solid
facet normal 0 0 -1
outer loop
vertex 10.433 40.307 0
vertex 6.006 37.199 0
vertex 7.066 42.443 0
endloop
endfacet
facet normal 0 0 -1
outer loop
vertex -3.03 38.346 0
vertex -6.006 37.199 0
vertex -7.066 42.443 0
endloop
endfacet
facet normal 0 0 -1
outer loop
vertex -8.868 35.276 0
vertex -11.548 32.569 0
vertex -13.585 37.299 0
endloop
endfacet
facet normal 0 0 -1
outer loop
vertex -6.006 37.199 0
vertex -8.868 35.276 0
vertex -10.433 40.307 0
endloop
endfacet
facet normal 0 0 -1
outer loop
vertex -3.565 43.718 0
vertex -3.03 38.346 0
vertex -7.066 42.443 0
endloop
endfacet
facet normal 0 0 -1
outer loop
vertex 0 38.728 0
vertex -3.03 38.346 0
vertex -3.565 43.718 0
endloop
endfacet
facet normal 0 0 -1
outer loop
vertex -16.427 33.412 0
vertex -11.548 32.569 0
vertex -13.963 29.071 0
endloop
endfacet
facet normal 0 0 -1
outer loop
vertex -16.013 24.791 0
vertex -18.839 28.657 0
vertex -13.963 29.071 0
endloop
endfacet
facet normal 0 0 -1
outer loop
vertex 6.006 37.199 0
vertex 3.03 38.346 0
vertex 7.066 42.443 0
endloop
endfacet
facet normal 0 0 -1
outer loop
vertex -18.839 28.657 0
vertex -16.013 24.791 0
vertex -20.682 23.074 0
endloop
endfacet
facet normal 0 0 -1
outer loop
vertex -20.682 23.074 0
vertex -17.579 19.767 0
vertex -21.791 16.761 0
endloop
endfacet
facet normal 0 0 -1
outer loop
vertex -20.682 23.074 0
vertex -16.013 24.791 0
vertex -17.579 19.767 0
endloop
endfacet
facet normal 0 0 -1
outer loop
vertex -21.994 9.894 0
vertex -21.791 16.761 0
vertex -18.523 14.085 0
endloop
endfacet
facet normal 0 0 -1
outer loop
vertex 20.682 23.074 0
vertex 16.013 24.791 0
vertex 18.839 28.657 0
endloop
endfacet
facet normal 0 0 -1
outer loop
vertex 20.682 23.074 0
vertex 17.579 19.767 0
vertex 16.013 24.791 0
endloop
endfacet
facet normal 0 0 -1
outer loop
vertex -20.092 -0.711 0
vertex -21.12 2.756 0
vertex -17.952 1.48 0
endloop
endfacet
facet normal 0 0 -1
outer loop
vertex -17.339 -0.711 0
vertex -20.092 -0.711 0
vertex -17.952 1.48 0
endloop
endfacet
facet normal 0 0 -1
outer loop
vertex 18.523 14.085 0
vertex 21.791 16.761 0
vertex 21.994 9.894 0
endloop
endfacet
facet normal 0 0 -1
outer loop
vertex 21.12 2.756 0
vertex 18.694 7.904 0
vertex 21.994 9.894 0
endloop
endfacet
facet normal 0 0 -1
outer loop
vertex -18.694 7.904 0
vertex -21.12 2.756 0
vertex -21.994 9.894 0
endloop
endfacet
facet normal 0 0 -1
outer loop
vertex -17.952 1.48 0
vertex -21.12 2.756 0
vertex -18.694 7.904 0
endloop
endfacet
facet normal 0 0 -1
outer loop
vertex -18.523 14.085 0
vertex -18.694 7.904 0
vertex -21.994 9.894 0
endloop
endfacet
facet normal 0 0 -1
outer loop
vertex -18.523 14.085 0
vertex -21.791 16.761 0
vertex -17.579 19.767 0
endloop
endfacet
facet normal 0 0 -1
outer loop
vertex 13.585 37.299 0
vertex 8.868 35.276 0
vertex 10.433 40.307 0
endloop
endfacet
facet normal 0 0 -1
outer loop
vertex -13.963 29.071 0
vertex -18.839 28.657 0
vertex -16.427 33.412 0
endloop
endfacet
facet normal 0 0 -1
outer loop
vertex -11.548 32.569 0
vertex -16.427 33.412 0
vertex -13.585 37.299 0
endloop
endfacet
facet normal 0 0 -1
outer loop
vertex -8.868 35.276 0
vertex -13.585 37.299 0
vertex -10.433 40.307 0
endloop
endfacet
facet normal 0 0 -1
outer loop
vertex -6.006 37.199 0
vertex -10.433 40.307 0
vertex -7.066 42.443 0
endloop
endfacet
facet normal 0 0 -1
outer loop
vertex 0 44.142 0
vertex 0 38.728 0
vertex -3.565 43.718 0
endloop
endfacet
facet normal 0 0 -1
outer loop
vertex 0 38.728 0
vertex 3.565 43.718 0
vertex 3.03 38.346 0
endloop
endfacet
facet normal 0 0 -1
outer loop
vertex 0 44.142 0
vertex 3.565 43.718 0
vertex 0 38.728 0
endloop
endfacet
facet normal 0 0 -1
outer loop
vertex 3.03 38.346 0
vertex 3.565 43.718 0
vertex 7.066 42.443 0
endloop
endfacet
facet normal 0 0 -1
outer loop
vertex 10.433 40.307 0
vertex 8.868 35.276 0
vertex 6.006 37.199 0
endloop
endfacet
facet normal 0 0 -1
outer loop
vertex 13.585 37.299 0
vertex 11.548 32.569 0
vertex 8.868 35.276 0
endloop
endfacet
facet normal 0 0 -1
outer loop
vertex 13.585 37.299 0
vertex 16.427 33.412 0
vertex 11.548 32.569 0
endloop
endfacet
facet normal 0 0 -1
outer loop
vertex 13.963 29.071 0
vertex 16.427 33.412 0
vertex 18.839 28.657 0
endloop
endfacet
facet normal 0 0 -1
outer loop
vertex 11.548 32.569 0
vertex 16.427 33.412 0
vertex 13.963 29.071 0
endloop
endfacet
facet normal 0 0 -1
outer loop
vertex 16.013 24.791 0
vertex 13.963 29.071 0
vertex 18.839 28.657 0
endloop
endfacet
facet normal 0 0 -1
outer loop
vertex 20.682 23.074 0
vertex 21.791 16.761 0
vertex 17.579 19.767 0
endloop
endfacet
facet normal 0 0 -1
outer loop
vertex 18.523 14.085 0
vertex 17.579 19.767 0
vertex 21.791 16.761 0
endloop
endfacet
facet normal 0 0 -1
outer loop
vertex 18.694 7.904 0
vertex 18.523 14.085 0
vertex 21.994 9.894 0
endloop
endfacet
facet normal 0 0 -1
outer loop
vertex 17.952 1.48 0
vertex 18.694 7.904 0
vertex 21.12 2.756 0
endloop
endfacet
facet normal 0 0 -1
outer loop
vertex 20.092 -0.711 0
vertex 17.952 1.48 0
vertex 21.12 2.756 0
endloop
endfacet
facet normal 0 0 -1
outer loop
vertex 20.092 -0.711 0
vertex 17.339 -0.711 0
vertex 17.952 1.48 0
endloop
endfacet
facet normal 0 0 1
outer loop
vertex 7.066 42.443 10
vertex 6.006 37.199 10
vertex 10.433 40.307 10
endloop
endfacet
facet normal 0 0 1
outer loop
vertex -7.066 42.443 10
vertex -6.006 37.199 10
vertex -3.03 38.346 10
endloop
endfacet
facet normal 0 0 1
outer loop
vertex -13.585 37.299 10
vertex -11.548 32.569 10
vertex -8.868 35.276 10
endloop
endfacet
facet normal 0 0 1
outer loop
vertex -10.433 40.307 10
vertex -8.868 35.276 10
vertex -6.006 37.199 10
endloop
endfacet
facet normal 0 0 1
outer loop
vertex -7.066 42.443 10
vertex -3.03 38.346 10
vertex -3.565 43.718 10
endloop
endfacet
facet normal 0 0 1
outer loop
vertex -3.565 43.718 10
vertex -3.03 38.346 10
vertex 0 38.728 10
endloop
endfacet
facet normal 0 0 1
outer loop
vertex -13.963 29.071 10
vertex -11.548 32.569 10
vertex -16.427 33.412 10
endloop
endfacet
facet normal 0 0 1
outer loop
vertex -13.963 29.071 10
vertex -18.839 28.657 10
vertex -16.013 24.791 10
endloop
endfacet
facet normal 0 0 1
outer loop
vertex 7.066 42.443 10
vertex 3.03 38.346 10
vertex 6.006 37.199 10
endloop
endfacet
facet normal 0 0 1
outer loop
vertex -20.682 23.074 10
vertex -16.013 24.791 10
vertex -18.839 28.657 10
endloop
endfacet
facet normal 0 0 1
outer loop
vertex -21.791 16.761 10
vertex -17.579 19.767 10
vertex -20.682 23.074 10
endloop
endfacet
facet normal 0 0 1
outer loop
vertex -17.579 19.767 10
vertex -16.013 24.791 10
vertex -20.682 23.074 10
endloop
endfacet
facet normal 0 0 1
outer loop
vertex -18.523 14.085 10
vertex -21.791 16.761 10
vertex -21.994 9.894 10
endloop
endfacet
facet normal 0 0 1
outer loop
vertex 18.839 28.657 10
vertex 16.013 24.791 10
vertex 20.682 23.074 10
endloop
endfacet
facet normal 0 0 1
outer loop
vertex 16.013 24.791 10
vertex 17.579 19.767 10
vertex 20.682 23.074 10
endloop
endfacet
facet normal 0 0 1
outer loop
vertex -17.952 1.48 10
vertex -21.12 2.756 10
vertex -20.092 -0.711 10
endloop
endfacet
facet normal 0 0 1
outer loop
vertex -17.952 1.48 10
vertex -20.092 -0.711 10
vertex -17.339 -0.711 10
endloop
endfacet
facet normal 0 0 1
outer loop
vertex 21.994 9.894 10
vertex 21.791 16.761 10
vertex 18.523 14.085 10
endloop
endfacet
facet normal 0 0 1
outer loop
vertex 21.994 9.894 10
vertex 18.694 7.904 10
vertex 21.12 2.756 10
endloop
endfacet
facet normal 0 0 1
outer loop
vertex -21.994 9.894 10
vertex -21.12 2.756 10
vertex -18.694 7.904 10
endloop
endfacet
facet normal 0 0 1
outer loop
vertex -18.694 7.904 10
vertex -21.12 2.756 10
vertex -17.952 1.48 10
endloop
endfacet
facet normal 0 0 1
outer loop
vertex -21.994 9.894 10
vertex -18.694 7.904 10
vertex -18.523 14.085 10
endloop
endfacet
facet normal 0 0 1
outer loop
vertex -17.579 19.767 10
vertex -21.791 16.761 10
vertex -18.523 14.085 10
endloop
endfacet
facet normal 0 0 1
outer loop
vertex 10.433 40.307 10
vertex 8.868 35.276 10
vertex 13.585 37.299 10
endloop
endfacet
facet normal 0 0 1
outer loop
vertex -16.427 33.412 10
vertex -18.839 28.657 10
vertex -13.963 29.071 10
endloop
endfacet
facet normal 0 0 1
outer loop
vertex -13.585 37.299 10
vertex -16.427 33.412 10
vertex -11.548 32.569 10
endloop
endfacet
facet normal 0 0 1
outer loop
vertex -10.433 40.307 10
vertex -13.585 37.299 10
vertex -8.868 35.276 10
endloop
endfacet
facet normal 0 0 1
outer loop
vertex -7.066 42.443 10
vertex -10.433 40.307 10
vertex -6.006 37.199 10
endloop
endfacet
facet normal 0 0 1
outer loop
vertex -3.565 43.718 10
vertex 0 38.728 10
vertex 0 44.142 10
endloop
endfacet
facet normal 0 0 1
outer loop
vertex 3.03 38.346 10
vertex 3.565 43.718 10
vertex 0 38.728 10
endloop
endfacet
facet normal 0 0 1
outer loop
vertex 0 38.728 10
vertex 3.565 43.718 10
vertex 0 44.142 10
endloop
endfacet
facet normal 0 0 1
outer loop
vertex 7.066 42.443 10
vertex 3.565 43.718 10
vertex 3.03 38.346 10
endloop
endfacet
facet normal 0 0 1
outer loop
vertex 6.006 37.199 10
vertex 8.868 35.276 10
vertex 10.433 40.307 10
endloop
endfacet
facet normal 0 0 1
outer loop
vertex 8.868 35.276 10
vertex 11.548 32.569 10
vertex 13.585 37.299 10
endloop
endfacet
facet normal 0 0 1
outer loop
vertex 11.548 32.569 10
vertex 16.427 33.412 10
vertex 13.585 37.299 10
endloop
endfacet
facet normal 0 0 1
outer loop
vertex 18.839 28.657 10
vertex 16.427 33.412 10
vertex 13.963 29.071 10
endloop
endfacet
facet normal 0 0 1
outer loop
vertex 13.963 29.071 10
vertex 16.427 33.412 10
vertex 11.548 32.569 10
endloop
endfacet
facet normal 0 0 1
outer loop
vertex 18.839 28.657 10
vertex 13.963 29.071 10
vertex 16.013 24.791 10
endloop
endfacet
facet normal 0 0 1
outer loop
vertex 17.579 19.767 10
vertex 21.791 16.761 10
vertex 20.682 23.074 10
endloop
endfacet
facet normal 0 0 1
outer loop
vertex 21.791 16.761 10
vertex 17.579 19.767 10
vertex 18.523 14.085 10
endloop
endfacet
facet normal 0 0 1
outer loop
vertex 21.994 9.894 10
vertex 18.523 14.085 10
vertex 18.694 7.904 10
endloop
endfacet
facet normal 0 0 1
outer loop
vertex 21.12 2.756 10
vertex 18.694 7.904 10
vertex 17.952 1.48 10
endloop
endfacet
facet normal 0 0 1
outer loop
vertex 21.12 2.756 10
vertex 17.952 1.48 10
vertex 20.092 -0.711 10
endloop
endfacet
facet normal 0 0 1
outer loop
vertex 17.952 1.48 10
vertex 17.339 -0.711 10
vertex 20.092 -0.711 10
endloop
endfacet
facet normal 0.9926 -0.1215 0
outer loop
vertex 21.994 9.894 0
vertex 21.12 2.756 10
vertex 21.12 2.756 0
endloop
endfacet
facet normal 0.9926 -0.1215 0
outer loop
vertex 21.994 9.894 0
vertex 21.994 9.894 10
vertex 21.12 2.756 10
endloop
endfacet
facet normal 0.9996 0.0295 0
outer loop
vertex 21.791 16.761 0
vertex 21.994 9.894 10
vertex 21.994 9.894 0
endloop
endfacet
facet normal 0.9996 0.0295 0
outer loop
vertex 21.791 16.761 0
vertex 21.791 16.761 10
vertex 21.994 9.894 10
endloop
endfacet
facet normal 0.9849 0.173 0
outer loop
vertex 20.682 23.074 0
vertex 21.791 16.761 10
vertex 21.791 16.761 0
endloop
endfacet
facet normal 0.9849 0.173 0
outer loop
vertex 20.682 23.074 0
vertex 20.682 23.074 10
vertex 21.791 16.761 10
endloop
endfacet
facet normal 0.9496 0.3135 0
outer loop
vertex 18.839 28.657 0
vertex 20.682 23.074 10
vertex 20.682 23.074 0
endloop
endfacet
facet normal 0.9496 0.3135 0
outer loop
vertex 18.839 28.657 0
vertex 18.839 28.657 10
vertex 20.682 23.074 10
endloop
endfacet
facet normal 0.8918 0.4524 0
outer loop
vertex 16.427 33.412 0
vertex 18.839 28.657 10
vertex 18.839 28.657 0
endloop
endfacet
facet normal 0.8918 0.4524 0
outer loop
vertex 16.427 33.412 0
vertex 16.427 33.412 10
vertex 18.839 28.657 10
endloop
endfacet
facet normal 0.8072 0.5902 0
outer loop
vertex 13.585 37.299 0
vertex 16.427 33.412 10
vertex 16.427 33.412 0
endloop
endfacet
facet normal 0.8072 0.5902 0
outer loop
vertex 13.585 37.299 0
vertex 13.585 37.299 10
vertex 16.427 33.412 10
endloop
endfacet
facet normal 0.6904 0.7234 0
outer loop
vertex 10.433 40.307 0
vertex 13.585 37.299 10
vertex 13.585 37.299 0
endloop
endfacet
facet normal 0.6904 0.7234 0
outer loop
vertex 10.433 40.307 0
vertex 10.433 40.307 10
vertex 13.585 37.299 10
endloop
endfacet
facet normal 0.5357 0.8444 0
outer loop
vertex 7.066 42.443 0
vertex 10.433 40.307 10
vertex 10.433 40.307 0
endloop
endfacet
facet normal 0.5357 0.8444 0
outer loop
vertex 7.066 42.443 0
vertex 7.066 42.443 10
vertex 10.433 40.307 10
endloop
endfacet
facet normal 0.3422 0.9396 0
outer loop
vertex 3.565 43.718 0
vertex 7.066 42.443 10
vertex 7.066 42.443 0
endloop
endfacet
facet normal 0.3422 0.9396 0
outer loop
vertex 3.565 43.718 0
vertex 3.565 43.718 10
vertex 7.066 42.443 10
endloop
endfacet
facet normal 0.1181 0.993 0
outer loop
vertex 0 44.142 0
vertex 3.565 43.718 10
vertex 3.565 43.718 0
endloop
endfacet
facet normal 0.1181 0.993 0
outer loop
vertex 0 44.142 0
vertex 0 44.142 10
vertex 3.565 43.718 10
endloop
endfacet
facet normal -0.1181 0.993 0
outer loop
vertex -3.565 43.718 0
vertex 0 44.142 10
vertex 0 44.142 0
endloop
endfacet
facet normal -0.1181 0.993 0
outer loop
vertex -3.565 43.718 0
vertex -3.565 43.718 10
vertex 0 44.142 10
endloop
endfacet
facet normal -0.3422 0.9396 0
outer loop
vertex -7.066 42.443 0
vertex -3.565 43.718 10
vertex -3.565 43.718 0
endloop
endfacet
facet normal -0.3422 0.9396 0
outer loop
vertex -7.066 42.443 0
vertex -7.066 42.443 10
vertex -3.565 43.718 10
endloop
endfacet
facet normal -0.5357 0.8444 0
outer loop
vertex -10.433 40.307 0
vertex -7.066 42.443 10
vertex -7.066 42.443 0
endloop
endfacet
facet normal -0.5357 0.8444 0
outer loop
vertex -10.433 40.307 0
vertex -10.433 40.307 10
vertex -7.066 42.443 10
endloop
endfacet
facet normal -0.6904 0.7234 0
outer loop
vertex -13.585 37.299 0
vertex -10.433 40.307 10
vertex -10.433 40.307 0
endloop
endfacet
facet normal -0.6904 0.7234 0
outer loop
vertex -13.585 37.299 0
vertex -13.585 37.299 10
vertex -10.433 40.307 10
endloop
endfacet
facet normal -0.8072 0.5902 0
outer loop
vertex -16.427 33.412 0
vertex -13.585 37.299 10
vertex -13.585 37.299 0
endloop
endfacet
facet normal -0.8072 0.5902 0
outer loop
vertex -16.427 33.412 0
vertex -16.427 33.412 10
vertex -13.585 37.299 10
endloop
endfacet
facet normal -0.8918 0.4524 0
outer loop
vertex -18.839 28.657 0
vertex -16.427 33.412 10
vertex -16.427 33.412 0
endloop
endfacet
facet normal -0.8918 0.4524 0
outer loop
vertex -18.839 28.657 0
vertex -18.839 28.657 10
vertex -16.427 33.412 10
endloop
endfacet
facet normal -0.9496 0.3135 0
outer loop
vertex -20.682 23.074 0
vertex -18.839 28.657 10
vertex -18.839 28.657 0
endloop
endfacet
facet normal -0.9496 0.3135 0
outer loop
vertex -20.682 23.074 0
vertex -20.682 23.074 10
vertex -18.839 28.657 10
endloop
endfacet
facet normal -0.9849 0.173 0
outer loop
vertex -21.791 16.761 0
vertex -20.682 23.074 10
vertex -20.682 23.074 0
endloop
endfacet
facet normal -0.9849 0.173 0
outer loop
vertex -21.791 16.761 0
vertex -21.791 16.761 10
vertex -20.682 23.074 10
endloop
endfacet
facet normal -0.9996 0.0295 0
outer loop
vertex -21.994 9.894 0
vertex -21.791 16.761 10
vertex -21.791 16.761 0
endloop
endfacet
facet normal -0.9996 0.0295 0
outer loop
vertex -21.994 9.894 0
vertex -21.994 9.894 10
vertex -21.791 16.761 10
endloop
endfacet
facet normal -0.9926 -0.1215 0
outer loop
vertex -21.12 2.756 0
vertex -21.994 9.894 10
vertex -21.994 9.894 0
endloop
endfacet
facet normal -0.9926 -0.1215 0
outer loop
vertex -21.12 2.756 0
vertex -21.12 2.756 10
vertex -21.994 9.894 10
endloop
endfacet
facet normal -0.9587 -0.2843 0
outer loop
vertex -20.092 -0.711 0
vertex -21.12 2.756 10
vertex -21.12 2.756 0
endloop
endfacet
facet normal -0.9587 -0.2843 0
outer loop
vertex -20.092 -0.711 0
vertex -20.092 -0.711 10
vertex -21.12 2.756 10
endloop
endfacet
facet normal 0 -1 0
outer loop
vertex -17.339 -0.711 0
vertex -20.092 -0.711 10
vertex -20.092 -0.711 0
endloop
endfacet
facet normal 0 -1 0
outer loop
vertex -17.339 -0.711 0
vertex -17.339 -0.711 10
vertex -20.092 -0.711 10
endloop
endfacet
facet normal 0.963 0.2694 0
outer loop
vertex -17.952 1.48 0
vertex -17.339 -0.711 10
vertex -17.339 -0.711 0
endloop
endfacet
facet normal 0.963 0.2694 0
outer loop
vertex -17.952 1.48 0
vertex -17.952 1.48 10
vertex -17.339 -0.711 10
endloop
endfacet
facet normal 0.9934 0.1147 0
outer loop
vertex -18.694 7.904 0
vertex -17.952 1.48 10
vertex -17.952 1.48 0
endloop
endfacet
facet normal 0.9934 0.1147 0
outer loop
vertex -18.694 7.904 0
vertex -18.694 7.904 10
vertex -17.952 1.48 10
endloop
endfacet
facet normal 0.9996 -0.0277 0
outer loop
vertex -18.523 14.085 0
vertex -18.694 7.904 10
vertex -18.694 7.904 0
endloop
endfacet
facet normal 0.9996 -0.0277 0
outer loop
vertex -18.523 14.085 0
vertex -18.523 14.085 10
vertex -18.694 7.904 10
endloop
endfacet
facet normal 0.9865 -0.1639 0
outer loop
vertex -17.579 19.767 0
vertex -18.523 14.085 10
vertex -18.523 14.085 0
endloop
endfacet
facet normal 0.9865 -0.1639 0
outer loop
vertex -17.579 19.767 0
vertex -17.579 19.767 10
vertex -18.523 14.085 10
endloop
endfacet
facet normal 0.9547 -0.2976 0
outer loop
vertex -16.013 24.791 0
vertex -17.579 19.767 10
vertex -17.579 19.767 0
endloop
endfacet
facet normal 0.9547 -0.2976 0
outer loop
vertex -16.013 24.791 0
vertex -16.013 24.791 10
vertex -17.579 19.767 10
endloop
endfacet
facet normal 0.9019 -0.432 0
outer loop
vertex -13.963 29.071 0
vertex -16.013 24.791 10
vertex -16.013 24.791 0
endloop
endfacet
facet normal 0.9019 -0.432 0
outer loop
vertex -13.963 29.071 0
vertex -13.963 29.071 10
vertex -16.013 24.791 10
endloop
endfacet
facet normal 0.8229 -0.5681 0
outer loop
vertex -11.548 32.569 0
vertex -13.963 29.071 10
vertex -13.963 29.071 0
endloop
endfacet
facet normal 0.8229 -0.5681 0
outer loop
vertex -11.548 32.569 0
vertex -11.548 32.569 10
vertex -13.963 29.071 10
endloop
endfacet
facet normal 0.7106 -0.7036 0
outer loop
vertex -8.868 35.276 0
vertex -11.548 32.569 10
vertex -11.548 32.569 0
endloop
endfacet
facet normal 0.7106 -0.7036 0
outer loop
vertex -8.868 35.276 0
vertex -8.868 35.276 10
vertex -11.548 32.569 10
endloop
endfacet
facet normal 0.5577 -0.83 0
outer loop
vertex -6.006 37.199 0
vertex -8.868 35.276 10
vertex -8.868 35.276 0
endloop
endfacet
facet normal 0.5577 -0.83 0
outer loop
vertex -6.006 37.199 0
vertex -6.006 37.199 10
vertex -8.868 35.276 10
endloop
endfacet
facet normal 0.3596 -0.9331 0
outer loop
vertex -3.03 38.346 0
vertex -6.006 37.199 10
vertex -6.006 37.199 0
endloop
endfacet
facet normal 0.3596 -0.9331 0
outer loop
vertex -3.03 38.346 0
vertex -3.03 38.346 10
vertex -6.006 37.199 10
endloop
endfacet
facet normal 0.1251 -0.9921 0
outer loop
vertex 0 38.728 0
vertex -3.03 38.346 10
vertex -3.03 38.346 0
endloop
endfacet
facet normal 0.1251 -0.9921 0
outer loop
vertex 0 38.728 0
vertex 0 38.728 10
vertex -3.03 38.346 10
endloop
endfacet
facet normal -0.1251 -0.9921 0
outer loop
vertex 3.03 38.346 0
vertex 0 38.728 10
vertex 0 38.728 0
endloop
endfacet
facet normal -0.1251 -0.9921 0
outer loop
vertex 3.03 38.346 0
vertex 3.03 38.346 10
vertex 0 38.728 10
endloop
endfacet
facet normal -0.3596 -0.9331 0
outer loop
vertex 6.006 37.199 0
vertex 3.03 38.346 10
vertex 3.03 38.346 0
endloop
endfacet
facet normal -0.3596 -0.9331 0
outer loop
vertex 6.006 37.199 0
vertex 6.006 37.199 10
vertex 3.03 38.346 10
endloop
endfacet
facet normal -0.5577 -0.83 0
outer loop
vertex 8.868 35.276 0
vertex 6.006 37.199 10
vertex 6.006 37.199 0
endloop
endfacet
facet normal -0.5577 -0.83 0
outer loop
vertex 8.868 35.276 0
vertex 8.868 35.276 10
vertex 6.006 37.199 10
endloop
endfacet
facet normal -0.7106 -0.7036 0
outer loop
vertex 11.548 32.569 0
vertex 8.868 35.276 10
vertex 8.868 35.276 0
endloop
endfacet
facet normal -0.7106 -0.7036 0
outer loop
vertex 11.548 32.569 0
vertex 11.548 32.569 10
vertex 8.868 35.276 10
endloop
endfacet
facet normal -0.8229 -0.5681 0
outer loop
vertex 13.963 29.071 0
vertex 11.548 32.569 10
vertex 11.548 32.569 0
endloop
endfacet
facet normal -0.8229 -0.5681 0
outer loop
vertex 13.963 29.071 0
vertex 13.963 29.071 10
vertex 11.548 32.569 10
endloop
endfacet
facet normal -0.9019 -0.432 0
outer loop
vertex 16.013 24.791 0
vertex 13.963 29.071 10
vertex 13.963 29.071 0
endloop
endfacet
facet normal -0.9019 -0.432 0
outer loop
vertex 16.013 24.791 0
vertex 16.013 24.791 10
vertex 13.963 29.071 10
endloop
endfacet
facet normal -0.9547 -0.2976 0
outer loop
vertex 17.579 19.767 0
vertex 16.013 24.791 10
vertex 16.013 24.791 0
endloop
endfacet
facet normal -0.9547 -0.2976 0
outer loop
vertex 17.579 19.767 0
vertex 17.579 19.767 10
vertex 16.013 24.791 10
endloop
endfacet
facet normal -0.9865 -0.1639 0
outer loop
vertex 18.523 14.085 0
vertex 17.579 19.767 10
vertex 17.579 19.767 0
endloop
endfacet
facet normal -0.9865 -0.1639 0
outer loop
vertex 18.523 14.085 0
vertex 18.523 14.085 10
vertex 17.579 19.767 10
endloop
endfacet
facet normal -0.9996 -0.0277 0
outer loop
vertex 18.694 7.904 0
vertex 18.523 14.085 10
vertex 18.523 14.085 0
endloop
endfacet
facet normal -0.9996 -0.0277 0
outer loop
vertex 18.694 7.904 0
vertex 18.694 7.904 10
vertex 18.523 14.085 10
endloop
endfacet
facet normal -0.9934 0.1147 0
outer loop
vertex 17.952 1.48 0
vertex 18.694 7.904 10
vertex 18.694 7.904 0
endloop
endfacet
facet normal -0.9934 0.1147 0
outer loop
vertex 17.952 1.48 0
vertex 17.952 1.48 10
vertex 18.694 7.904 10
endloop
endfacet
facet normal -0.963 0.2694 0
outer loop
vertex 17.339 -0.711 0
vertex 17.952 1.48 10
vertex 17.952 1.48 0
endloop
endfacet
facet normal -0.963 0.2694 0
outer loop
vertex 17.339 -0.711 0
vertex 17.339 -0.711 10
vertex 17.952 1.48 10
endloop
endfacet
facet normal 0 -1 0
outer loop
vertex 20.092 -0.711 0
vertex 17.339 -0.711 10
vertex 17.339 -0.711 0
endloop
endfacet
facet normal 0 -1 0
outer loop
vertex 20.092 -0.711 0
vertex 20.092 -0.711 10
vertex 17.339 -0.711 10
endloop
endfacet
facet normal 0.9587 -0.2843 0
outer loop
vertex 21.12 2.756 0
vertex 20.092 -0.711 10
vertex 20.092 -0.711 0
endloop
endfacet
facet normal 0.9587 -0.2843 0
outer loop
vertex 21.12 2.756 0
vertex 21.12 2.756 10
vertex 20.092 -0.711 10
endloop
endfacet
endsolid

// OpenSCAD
module horseshoeProjection()
{
	rotate ([0, 0, 90])
	translate ([45, 0, 0]) 
	projection(cut=true) // the projection is from http://blog.bangsplatpresents.com/?p=1123
	{
		translate( v=[0,0,25] ) 
		{
			rotate( a=[0,45,0] ) 
			{
				cylinder( r1=25, r2=0, h=100, center=true );
			}
		}
	}
}

module horseshoe()
{
	linear_extrude(height=10)
	difference() 
	{ 
		horseshoeProjection();
		
		translate ([0, -1, 0])
		scale ([0.85, .9, 1]) 
		horseshoeProjection();
	}
}

horseshoe();
